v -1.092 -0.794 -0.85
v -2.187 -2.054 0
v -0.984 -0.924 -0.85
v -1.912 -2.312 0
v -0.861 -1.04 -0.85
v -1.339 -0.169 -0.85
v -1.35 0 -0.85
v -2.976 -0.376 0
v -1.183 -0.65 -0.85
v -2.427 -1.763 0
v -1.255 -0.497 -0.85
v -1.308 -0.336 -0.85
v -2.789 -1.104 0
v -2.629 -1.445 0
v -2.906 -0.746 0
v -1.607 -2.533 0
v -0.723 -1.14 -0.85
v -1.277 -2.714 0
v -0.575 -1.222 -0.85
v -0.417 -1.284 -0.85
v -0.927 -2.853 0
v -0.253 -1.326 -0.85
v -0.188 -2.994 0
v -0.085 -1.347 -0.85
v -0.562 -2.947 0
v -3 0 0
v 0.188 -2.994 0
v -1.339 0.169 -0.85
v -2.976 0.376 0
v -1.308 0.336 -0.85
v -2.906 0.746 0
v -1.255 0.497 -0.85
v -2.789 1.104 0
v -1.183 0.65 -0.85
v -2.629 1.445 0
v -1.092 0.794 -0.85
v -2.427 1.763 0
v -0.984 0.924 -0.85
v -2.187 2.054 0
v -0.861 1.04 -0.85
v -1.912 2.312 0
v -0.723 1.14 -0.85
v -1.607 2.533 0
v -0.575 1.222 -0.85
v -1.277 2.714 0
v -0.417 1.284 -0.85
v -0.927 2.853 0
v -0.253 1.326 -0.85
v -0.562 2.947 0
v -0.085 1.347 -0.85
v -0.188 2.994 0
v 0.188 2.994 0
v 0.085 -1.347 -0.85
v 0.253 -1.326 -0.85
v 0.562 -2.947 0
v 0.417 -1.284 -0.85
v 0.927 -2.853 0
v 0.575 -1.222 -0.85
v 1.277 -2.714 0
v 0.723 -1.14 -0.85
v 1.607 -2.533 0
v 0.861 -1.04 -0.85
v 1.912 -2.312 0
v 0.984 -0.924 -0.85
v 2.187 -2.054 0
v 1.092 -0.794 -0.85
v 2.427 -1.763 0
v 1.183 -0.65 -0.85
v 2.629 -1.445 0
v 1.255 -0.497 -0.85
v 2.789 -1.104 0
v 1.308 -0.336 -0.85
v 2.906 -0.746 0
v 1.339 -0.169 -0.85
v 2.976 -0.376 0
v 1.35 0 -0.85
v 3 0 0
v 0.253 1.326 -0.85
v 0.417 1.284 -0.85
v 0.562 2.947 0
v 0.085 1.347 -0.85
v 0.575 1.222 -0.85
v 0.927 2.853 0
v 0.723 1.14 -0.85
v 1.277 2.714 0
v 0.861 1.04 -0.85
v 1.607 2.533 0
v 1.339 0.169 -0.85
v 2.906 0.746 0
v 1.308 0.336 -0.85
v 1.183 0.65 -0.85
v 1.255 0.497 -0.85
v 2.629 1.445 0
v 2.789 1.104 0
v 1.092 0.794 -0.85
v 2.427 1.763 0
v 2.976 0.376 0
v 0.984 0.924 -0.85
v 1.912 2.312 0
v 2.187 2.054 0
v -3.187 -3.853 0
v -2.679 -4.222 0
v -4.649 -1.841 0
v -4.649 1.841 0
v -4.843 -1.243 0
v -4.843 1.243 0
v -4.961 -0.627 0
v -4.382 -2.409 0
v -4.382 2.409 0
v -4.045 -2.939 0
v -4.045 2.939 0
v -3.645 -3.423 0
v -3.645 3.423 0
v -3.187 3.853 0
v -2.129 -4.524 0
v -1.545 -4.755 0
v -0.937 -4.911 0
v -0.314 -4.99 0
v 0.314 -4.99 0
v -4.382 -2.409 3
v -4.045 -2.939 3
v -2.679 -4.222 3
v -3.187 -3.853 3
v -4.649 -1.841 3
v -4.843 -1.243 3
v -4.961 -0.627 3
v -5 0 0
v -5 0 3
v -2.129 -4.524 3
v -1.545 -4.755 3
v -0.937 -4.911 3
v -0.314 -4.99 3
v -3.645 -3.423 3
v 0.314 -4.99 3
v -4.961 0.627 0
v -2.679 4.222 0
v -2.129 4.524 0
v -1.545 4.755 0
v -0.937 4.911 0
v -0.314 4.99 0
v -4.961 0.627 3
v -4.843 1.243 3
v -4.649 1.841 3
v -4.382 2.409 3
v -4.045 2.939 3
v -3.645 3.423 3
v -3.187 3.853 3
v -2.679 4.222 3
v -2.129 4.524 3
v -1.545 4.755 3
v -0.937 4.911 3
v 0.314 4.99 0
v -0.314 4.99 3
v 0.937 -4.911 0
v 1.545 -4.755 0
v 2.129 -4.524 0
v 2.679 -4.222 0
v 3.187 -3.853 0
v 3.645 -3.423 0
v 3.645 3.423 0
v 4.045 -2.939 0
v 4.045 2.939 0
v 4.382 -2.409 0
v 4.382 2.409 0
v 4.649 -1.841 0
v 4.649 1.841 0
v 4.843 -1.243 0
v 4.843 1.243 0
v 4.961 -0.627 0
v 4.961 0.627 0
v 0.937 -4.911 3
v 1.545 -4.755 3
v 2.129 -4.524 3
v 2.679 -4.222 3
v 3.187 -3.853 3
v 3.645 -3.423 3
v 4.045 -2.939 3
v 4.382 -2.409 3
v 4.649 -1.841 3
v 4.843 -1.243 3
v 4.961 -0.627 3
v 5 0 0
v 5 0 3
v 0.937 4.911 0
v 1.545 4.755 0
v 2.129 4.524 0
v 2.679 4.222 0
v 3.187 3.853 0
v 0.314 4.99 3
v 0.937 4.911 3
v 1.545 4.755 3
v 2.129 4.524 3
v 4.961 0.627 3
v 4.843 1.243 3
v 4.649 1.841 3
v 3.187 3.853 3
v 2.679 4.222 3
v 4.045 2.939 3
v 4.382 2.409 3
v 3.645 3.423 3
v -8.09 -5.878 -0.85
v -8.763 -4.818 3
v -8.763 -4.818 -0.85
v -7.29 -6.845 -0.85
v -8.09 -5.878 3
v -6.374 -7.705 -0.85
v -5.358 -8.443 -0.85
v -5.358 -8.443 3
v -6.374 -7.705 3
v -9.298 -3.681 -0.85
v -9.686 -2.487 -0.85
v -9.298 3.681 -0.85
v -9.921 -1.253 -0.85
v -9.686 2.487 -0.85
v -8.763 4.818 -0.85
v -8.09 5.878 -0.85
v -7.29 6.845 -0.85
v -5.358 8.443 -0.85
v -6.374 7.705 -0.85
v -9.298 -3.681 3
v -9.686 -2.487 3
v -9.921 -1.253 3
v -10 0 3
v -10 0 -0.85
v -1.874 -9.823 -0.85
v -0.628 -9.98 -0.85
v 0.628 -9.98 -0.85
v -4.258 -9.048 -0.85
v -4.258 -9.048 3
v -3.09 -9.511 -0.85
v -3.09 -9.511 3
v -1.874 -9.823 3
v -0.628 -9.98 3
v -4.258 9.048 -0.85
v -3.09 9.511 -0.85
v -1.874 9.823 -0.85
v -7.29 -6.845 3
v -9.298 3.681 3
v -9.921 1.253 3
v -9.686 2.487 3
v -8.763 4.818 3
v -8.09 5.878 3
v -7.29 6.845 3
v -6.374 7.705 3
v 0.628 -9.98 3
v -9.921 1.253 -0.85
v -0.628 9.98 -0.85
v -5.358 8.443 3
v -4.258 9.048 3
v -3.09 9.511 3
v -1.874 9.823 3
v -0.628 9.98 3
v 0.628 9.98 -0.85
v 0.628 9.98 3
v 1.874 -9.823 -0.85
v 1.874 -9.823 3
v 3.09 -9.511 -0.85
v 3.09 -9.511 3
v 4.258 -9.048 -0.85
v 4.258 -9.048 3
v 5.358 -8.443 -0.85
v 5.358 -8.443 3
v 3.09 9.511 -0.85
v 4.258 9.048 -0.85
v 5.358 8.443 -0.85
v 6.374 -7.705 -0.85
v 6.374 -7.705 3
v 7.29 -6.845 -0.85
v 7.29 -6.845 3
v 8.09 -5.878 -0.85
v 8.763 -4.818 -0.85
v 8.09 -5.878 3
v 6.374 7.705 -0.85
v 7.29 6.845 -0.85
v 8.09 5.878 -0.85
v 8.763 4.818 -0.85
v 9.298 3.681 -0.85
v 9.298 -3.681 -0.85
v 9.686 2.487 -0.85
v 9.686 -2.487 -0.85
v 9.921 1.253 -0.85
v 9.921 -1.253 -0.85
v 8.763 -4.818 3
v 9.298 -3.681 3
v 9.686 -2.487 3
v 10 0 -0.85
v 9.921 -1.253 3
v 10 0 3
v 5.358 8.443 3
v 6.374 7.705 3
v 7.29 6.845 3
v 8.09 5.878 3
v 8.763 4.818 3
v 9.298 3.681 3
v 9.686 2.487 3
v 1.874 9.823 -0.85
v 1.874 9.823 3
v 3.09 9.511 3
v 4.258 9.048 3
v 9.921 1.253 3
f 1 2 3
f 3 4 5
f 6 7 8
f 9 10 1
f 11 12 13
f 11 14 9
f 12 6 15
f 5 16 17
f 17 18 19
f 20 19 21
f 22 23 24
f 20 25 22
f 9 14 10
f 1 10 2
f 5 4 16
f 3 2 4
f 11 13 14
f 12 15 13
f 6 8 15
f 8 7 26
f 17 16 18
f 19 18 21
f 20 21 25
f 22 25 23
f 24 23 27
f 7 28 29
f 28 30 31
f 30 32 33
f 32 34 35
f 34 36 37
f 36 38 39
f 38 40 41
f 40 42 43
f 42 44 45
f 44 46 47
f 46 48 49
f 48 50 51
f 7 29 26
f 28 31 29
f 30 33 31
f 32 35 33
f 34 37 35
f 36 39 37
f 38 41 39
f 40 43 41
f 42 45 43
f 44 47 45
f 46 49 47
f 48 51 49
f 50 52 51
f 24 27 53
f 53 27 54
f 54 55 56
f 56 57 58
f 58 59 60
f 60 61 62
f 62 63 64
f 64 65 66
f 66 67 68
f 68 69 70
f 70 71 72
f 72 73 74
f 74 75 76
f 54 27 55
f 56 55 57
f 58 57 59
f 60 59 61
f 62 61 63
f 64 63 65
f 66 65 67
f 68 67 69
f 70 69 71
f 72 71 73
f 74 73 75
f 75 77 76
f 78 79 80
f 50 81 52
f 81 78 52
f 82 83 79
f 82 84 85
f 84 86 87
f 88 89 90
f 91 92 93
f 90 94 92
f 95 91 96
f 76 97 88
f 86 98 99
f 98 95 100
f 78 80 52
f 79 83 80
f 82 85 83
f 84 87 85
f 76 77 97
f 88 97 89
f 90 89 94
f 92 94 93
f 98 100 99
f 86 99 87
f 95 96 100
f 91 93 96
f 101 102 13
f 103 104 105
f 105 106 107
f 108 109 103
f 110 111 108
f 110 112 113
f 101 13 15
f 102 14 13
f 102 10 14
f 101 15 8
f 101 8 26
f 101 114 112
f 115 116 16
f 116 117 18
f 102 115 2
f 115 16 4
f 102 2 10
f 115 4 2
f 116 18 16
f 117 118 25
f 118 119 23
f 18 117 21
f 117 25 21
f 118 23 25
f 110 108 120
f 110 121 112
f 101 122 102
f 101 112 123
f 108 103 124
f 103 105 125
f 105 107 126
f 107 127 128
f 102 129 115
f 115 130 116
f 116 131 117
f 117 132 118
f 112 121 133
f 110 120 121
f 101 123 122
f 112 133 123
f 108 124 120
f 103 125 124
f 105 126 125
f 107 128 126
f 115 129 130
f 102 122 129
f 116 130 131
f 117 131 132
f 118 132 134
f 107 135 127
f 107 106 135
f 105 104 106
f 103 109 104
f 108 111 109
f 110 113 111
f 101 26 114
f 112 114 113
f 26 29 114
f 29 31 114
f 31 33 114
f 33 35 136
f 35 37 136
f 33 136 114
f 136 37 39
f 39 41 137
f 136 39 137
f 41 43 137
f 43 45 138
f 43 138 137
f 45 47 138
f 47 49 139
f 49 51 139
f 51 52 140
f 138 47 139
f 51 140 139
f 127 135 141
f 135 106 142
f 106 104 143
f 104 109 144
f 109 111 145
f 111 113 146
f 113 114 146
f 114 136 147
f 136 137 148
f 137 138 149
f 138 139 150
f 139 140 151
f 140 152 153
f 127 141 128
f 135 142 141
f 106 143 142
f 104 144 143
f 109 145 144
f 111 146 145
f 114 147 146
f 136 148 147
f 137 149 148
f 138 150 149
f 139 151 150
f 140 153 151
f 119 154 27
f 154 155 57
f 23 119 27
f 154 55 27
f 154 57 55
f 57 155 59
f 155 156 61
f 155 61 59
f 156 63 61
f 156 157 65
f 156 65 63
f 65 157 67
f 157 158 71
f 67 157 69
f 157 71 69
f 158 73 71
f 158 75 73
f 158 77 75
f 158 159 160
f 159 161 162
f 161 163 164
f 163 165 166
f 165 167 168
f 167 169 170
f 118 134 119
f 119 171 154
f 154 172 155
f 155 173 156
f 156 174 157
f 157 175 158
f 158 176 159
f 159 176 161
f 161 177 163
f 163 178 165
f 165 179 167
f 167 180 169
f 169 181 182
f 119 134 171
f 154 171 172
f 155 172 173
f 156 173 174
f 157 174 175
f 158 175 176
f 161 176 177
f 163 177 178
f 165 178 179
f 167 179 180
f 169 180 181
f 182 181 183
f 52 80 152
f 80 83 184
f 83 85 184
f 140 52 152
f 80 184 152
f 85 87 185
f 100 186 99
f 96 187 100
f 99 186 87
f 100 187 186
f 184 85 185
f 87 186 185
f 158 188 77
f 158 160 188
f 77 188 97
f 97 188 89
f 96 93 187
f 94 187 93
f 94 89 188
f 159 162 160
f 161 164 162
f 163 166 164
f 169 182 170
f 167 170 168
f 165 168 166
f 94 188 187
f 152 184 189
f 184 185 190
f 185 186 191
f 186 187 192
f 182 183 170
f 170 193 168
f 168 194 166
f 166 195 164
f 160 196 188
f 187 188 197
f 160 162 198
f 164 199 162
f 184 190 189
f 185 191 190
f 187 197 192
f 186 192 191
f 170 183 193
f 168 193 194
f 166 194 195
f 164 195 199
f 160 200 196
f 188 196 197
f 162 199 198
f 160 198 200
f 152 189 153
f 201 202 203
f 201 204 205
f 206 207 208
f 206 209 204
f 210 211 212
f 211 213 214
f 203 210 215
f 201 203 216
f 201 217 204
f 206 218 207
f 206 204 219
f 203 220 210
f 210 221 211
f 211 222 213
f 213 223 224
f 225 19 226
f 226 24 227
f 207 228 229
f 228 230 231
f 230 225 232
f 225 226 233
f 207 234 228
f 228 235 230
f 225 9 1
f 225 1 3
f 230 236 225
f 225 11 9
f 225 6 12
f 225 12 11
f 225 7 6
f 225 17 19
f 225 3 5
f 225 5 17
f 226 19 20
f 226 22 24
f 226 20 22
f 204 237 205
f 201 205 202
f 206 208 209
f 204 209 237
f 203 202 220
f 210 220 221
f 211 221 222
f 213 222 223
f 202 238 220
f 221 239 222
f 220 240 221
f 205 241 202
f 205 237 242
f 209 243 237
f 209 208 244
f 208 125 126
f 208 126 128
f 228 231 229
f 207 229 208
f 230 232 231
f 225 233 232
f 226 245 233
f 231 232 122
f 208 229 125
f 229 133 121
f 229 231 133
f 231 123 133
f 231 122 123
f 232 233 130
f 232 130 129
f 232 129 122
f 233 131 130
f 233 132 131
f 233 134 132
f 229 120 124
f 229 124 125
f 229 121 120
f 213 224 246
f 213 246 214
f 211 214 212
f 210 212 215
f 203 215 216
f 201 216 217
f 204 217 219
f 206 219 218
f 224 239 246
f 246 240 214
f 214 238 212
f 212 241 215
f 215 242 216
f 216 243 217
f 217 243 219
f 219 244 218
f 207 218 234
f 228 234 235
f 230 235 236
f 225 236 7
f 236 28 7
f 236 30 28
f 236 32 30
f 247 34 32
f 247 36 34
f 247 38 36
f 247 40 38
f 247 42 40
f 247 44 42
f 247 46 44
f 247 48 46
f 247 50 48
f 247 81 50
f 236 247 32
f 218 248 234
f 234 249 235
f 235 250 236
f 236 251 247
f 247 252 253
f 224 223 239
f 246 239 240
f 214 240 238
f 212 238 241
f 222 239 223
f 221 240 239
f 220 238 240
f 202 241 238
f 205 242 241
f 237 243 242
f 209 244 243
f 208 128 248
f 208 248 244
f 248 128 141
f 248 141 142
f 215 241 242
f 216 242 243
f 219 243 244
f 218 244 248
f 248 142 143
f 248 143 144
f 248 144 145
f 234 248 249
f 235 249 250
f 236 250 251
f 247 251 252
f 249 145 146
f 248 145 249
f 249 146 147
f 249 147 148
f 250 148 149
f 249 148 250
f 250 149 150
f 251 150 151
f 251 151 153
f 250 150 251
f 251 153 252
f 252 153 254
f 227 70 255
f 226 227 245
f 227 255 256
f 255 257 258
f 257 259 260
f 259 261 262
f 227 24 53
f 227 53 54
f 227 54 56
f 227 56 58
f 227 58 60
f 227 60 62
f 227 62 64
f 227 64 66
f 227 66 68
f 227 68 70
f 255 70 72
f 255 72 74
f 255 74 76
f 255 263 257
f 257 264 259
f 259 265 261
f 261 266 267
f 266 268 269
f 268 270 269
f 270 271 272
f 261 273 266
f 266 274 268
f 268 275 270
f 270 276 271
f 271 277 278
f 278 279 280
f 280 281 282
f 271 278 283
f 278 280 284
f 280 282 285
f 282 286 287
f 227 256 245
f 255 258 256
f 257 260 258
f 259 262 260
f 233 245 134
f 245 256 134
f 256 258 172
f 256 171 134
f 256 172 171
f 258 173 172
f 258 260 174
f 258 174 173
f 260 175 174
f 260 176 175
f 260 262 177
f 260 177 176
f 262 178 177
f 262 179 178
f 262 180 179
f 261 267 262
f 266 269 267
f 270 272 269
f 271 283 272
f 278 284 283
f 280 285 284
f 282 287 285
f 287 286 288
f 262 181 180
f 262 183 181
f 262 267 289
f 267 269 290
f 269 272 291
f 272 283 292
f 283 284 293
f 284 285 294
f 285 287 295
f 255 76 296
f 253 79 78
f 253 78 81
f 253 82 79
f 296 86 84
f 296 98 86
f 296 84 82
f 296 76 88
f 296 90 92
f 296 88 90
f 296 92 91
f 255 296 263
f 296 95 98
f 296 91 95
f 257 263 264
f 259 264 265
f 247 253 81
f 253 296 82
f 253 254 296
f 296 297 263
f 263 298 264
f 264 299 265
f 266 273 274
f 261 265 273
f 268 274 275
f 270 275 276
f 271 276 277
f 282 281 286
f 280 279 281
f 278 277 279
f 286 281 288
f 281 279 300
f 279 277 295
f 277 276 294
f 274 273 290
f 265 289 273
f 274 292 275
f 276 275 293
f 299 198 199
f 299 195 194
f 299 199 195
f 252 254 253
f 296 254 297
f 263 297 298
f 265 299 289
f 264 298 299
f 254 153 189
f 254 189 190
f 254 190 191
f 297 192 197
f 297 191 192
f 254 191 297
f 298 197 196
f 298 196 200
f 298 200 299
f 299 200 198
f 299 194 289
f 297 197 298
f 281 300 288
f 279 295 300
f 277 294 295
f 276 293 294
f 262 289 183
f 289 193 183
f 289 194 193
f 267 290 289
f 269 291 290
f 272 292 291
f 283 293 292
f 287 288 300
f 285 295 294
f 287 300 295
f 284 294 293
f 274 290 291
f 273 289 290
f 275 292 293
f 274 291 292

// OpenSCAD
$fn = 50;

difference() {
	union() {
		translate(v = [0, 0, -0.8500000000000001]) {
			cylinder(h = 3.85, r = 10.0);
		}
	}
	union() {
		translate(v = [0, 0, 0]) {
			rotate(a = [0, 0, 0]) {
				difference() {
					union() {
						translate(v = [0, 0, -3.85]) {
							cylinder(h = 3.85, r = 1.0);
						}
						translate(v = [0, 0, -0.85]) {
							cylinder(h = 0.85, r1 = 1.35, r2 = 3.0);
						}
						translate(v = [0, 0, -3.85]) {
							cylinder(h = 3.85, r = 1.35);
						}
						translate(v = [0, 0, -3.85]) {
							cylinder(h = 3.85, r = 1.0);
						}
					}
					union();
				}
			}
		}
		#cylinder(h = 3, r = 5.0);
	}
}
